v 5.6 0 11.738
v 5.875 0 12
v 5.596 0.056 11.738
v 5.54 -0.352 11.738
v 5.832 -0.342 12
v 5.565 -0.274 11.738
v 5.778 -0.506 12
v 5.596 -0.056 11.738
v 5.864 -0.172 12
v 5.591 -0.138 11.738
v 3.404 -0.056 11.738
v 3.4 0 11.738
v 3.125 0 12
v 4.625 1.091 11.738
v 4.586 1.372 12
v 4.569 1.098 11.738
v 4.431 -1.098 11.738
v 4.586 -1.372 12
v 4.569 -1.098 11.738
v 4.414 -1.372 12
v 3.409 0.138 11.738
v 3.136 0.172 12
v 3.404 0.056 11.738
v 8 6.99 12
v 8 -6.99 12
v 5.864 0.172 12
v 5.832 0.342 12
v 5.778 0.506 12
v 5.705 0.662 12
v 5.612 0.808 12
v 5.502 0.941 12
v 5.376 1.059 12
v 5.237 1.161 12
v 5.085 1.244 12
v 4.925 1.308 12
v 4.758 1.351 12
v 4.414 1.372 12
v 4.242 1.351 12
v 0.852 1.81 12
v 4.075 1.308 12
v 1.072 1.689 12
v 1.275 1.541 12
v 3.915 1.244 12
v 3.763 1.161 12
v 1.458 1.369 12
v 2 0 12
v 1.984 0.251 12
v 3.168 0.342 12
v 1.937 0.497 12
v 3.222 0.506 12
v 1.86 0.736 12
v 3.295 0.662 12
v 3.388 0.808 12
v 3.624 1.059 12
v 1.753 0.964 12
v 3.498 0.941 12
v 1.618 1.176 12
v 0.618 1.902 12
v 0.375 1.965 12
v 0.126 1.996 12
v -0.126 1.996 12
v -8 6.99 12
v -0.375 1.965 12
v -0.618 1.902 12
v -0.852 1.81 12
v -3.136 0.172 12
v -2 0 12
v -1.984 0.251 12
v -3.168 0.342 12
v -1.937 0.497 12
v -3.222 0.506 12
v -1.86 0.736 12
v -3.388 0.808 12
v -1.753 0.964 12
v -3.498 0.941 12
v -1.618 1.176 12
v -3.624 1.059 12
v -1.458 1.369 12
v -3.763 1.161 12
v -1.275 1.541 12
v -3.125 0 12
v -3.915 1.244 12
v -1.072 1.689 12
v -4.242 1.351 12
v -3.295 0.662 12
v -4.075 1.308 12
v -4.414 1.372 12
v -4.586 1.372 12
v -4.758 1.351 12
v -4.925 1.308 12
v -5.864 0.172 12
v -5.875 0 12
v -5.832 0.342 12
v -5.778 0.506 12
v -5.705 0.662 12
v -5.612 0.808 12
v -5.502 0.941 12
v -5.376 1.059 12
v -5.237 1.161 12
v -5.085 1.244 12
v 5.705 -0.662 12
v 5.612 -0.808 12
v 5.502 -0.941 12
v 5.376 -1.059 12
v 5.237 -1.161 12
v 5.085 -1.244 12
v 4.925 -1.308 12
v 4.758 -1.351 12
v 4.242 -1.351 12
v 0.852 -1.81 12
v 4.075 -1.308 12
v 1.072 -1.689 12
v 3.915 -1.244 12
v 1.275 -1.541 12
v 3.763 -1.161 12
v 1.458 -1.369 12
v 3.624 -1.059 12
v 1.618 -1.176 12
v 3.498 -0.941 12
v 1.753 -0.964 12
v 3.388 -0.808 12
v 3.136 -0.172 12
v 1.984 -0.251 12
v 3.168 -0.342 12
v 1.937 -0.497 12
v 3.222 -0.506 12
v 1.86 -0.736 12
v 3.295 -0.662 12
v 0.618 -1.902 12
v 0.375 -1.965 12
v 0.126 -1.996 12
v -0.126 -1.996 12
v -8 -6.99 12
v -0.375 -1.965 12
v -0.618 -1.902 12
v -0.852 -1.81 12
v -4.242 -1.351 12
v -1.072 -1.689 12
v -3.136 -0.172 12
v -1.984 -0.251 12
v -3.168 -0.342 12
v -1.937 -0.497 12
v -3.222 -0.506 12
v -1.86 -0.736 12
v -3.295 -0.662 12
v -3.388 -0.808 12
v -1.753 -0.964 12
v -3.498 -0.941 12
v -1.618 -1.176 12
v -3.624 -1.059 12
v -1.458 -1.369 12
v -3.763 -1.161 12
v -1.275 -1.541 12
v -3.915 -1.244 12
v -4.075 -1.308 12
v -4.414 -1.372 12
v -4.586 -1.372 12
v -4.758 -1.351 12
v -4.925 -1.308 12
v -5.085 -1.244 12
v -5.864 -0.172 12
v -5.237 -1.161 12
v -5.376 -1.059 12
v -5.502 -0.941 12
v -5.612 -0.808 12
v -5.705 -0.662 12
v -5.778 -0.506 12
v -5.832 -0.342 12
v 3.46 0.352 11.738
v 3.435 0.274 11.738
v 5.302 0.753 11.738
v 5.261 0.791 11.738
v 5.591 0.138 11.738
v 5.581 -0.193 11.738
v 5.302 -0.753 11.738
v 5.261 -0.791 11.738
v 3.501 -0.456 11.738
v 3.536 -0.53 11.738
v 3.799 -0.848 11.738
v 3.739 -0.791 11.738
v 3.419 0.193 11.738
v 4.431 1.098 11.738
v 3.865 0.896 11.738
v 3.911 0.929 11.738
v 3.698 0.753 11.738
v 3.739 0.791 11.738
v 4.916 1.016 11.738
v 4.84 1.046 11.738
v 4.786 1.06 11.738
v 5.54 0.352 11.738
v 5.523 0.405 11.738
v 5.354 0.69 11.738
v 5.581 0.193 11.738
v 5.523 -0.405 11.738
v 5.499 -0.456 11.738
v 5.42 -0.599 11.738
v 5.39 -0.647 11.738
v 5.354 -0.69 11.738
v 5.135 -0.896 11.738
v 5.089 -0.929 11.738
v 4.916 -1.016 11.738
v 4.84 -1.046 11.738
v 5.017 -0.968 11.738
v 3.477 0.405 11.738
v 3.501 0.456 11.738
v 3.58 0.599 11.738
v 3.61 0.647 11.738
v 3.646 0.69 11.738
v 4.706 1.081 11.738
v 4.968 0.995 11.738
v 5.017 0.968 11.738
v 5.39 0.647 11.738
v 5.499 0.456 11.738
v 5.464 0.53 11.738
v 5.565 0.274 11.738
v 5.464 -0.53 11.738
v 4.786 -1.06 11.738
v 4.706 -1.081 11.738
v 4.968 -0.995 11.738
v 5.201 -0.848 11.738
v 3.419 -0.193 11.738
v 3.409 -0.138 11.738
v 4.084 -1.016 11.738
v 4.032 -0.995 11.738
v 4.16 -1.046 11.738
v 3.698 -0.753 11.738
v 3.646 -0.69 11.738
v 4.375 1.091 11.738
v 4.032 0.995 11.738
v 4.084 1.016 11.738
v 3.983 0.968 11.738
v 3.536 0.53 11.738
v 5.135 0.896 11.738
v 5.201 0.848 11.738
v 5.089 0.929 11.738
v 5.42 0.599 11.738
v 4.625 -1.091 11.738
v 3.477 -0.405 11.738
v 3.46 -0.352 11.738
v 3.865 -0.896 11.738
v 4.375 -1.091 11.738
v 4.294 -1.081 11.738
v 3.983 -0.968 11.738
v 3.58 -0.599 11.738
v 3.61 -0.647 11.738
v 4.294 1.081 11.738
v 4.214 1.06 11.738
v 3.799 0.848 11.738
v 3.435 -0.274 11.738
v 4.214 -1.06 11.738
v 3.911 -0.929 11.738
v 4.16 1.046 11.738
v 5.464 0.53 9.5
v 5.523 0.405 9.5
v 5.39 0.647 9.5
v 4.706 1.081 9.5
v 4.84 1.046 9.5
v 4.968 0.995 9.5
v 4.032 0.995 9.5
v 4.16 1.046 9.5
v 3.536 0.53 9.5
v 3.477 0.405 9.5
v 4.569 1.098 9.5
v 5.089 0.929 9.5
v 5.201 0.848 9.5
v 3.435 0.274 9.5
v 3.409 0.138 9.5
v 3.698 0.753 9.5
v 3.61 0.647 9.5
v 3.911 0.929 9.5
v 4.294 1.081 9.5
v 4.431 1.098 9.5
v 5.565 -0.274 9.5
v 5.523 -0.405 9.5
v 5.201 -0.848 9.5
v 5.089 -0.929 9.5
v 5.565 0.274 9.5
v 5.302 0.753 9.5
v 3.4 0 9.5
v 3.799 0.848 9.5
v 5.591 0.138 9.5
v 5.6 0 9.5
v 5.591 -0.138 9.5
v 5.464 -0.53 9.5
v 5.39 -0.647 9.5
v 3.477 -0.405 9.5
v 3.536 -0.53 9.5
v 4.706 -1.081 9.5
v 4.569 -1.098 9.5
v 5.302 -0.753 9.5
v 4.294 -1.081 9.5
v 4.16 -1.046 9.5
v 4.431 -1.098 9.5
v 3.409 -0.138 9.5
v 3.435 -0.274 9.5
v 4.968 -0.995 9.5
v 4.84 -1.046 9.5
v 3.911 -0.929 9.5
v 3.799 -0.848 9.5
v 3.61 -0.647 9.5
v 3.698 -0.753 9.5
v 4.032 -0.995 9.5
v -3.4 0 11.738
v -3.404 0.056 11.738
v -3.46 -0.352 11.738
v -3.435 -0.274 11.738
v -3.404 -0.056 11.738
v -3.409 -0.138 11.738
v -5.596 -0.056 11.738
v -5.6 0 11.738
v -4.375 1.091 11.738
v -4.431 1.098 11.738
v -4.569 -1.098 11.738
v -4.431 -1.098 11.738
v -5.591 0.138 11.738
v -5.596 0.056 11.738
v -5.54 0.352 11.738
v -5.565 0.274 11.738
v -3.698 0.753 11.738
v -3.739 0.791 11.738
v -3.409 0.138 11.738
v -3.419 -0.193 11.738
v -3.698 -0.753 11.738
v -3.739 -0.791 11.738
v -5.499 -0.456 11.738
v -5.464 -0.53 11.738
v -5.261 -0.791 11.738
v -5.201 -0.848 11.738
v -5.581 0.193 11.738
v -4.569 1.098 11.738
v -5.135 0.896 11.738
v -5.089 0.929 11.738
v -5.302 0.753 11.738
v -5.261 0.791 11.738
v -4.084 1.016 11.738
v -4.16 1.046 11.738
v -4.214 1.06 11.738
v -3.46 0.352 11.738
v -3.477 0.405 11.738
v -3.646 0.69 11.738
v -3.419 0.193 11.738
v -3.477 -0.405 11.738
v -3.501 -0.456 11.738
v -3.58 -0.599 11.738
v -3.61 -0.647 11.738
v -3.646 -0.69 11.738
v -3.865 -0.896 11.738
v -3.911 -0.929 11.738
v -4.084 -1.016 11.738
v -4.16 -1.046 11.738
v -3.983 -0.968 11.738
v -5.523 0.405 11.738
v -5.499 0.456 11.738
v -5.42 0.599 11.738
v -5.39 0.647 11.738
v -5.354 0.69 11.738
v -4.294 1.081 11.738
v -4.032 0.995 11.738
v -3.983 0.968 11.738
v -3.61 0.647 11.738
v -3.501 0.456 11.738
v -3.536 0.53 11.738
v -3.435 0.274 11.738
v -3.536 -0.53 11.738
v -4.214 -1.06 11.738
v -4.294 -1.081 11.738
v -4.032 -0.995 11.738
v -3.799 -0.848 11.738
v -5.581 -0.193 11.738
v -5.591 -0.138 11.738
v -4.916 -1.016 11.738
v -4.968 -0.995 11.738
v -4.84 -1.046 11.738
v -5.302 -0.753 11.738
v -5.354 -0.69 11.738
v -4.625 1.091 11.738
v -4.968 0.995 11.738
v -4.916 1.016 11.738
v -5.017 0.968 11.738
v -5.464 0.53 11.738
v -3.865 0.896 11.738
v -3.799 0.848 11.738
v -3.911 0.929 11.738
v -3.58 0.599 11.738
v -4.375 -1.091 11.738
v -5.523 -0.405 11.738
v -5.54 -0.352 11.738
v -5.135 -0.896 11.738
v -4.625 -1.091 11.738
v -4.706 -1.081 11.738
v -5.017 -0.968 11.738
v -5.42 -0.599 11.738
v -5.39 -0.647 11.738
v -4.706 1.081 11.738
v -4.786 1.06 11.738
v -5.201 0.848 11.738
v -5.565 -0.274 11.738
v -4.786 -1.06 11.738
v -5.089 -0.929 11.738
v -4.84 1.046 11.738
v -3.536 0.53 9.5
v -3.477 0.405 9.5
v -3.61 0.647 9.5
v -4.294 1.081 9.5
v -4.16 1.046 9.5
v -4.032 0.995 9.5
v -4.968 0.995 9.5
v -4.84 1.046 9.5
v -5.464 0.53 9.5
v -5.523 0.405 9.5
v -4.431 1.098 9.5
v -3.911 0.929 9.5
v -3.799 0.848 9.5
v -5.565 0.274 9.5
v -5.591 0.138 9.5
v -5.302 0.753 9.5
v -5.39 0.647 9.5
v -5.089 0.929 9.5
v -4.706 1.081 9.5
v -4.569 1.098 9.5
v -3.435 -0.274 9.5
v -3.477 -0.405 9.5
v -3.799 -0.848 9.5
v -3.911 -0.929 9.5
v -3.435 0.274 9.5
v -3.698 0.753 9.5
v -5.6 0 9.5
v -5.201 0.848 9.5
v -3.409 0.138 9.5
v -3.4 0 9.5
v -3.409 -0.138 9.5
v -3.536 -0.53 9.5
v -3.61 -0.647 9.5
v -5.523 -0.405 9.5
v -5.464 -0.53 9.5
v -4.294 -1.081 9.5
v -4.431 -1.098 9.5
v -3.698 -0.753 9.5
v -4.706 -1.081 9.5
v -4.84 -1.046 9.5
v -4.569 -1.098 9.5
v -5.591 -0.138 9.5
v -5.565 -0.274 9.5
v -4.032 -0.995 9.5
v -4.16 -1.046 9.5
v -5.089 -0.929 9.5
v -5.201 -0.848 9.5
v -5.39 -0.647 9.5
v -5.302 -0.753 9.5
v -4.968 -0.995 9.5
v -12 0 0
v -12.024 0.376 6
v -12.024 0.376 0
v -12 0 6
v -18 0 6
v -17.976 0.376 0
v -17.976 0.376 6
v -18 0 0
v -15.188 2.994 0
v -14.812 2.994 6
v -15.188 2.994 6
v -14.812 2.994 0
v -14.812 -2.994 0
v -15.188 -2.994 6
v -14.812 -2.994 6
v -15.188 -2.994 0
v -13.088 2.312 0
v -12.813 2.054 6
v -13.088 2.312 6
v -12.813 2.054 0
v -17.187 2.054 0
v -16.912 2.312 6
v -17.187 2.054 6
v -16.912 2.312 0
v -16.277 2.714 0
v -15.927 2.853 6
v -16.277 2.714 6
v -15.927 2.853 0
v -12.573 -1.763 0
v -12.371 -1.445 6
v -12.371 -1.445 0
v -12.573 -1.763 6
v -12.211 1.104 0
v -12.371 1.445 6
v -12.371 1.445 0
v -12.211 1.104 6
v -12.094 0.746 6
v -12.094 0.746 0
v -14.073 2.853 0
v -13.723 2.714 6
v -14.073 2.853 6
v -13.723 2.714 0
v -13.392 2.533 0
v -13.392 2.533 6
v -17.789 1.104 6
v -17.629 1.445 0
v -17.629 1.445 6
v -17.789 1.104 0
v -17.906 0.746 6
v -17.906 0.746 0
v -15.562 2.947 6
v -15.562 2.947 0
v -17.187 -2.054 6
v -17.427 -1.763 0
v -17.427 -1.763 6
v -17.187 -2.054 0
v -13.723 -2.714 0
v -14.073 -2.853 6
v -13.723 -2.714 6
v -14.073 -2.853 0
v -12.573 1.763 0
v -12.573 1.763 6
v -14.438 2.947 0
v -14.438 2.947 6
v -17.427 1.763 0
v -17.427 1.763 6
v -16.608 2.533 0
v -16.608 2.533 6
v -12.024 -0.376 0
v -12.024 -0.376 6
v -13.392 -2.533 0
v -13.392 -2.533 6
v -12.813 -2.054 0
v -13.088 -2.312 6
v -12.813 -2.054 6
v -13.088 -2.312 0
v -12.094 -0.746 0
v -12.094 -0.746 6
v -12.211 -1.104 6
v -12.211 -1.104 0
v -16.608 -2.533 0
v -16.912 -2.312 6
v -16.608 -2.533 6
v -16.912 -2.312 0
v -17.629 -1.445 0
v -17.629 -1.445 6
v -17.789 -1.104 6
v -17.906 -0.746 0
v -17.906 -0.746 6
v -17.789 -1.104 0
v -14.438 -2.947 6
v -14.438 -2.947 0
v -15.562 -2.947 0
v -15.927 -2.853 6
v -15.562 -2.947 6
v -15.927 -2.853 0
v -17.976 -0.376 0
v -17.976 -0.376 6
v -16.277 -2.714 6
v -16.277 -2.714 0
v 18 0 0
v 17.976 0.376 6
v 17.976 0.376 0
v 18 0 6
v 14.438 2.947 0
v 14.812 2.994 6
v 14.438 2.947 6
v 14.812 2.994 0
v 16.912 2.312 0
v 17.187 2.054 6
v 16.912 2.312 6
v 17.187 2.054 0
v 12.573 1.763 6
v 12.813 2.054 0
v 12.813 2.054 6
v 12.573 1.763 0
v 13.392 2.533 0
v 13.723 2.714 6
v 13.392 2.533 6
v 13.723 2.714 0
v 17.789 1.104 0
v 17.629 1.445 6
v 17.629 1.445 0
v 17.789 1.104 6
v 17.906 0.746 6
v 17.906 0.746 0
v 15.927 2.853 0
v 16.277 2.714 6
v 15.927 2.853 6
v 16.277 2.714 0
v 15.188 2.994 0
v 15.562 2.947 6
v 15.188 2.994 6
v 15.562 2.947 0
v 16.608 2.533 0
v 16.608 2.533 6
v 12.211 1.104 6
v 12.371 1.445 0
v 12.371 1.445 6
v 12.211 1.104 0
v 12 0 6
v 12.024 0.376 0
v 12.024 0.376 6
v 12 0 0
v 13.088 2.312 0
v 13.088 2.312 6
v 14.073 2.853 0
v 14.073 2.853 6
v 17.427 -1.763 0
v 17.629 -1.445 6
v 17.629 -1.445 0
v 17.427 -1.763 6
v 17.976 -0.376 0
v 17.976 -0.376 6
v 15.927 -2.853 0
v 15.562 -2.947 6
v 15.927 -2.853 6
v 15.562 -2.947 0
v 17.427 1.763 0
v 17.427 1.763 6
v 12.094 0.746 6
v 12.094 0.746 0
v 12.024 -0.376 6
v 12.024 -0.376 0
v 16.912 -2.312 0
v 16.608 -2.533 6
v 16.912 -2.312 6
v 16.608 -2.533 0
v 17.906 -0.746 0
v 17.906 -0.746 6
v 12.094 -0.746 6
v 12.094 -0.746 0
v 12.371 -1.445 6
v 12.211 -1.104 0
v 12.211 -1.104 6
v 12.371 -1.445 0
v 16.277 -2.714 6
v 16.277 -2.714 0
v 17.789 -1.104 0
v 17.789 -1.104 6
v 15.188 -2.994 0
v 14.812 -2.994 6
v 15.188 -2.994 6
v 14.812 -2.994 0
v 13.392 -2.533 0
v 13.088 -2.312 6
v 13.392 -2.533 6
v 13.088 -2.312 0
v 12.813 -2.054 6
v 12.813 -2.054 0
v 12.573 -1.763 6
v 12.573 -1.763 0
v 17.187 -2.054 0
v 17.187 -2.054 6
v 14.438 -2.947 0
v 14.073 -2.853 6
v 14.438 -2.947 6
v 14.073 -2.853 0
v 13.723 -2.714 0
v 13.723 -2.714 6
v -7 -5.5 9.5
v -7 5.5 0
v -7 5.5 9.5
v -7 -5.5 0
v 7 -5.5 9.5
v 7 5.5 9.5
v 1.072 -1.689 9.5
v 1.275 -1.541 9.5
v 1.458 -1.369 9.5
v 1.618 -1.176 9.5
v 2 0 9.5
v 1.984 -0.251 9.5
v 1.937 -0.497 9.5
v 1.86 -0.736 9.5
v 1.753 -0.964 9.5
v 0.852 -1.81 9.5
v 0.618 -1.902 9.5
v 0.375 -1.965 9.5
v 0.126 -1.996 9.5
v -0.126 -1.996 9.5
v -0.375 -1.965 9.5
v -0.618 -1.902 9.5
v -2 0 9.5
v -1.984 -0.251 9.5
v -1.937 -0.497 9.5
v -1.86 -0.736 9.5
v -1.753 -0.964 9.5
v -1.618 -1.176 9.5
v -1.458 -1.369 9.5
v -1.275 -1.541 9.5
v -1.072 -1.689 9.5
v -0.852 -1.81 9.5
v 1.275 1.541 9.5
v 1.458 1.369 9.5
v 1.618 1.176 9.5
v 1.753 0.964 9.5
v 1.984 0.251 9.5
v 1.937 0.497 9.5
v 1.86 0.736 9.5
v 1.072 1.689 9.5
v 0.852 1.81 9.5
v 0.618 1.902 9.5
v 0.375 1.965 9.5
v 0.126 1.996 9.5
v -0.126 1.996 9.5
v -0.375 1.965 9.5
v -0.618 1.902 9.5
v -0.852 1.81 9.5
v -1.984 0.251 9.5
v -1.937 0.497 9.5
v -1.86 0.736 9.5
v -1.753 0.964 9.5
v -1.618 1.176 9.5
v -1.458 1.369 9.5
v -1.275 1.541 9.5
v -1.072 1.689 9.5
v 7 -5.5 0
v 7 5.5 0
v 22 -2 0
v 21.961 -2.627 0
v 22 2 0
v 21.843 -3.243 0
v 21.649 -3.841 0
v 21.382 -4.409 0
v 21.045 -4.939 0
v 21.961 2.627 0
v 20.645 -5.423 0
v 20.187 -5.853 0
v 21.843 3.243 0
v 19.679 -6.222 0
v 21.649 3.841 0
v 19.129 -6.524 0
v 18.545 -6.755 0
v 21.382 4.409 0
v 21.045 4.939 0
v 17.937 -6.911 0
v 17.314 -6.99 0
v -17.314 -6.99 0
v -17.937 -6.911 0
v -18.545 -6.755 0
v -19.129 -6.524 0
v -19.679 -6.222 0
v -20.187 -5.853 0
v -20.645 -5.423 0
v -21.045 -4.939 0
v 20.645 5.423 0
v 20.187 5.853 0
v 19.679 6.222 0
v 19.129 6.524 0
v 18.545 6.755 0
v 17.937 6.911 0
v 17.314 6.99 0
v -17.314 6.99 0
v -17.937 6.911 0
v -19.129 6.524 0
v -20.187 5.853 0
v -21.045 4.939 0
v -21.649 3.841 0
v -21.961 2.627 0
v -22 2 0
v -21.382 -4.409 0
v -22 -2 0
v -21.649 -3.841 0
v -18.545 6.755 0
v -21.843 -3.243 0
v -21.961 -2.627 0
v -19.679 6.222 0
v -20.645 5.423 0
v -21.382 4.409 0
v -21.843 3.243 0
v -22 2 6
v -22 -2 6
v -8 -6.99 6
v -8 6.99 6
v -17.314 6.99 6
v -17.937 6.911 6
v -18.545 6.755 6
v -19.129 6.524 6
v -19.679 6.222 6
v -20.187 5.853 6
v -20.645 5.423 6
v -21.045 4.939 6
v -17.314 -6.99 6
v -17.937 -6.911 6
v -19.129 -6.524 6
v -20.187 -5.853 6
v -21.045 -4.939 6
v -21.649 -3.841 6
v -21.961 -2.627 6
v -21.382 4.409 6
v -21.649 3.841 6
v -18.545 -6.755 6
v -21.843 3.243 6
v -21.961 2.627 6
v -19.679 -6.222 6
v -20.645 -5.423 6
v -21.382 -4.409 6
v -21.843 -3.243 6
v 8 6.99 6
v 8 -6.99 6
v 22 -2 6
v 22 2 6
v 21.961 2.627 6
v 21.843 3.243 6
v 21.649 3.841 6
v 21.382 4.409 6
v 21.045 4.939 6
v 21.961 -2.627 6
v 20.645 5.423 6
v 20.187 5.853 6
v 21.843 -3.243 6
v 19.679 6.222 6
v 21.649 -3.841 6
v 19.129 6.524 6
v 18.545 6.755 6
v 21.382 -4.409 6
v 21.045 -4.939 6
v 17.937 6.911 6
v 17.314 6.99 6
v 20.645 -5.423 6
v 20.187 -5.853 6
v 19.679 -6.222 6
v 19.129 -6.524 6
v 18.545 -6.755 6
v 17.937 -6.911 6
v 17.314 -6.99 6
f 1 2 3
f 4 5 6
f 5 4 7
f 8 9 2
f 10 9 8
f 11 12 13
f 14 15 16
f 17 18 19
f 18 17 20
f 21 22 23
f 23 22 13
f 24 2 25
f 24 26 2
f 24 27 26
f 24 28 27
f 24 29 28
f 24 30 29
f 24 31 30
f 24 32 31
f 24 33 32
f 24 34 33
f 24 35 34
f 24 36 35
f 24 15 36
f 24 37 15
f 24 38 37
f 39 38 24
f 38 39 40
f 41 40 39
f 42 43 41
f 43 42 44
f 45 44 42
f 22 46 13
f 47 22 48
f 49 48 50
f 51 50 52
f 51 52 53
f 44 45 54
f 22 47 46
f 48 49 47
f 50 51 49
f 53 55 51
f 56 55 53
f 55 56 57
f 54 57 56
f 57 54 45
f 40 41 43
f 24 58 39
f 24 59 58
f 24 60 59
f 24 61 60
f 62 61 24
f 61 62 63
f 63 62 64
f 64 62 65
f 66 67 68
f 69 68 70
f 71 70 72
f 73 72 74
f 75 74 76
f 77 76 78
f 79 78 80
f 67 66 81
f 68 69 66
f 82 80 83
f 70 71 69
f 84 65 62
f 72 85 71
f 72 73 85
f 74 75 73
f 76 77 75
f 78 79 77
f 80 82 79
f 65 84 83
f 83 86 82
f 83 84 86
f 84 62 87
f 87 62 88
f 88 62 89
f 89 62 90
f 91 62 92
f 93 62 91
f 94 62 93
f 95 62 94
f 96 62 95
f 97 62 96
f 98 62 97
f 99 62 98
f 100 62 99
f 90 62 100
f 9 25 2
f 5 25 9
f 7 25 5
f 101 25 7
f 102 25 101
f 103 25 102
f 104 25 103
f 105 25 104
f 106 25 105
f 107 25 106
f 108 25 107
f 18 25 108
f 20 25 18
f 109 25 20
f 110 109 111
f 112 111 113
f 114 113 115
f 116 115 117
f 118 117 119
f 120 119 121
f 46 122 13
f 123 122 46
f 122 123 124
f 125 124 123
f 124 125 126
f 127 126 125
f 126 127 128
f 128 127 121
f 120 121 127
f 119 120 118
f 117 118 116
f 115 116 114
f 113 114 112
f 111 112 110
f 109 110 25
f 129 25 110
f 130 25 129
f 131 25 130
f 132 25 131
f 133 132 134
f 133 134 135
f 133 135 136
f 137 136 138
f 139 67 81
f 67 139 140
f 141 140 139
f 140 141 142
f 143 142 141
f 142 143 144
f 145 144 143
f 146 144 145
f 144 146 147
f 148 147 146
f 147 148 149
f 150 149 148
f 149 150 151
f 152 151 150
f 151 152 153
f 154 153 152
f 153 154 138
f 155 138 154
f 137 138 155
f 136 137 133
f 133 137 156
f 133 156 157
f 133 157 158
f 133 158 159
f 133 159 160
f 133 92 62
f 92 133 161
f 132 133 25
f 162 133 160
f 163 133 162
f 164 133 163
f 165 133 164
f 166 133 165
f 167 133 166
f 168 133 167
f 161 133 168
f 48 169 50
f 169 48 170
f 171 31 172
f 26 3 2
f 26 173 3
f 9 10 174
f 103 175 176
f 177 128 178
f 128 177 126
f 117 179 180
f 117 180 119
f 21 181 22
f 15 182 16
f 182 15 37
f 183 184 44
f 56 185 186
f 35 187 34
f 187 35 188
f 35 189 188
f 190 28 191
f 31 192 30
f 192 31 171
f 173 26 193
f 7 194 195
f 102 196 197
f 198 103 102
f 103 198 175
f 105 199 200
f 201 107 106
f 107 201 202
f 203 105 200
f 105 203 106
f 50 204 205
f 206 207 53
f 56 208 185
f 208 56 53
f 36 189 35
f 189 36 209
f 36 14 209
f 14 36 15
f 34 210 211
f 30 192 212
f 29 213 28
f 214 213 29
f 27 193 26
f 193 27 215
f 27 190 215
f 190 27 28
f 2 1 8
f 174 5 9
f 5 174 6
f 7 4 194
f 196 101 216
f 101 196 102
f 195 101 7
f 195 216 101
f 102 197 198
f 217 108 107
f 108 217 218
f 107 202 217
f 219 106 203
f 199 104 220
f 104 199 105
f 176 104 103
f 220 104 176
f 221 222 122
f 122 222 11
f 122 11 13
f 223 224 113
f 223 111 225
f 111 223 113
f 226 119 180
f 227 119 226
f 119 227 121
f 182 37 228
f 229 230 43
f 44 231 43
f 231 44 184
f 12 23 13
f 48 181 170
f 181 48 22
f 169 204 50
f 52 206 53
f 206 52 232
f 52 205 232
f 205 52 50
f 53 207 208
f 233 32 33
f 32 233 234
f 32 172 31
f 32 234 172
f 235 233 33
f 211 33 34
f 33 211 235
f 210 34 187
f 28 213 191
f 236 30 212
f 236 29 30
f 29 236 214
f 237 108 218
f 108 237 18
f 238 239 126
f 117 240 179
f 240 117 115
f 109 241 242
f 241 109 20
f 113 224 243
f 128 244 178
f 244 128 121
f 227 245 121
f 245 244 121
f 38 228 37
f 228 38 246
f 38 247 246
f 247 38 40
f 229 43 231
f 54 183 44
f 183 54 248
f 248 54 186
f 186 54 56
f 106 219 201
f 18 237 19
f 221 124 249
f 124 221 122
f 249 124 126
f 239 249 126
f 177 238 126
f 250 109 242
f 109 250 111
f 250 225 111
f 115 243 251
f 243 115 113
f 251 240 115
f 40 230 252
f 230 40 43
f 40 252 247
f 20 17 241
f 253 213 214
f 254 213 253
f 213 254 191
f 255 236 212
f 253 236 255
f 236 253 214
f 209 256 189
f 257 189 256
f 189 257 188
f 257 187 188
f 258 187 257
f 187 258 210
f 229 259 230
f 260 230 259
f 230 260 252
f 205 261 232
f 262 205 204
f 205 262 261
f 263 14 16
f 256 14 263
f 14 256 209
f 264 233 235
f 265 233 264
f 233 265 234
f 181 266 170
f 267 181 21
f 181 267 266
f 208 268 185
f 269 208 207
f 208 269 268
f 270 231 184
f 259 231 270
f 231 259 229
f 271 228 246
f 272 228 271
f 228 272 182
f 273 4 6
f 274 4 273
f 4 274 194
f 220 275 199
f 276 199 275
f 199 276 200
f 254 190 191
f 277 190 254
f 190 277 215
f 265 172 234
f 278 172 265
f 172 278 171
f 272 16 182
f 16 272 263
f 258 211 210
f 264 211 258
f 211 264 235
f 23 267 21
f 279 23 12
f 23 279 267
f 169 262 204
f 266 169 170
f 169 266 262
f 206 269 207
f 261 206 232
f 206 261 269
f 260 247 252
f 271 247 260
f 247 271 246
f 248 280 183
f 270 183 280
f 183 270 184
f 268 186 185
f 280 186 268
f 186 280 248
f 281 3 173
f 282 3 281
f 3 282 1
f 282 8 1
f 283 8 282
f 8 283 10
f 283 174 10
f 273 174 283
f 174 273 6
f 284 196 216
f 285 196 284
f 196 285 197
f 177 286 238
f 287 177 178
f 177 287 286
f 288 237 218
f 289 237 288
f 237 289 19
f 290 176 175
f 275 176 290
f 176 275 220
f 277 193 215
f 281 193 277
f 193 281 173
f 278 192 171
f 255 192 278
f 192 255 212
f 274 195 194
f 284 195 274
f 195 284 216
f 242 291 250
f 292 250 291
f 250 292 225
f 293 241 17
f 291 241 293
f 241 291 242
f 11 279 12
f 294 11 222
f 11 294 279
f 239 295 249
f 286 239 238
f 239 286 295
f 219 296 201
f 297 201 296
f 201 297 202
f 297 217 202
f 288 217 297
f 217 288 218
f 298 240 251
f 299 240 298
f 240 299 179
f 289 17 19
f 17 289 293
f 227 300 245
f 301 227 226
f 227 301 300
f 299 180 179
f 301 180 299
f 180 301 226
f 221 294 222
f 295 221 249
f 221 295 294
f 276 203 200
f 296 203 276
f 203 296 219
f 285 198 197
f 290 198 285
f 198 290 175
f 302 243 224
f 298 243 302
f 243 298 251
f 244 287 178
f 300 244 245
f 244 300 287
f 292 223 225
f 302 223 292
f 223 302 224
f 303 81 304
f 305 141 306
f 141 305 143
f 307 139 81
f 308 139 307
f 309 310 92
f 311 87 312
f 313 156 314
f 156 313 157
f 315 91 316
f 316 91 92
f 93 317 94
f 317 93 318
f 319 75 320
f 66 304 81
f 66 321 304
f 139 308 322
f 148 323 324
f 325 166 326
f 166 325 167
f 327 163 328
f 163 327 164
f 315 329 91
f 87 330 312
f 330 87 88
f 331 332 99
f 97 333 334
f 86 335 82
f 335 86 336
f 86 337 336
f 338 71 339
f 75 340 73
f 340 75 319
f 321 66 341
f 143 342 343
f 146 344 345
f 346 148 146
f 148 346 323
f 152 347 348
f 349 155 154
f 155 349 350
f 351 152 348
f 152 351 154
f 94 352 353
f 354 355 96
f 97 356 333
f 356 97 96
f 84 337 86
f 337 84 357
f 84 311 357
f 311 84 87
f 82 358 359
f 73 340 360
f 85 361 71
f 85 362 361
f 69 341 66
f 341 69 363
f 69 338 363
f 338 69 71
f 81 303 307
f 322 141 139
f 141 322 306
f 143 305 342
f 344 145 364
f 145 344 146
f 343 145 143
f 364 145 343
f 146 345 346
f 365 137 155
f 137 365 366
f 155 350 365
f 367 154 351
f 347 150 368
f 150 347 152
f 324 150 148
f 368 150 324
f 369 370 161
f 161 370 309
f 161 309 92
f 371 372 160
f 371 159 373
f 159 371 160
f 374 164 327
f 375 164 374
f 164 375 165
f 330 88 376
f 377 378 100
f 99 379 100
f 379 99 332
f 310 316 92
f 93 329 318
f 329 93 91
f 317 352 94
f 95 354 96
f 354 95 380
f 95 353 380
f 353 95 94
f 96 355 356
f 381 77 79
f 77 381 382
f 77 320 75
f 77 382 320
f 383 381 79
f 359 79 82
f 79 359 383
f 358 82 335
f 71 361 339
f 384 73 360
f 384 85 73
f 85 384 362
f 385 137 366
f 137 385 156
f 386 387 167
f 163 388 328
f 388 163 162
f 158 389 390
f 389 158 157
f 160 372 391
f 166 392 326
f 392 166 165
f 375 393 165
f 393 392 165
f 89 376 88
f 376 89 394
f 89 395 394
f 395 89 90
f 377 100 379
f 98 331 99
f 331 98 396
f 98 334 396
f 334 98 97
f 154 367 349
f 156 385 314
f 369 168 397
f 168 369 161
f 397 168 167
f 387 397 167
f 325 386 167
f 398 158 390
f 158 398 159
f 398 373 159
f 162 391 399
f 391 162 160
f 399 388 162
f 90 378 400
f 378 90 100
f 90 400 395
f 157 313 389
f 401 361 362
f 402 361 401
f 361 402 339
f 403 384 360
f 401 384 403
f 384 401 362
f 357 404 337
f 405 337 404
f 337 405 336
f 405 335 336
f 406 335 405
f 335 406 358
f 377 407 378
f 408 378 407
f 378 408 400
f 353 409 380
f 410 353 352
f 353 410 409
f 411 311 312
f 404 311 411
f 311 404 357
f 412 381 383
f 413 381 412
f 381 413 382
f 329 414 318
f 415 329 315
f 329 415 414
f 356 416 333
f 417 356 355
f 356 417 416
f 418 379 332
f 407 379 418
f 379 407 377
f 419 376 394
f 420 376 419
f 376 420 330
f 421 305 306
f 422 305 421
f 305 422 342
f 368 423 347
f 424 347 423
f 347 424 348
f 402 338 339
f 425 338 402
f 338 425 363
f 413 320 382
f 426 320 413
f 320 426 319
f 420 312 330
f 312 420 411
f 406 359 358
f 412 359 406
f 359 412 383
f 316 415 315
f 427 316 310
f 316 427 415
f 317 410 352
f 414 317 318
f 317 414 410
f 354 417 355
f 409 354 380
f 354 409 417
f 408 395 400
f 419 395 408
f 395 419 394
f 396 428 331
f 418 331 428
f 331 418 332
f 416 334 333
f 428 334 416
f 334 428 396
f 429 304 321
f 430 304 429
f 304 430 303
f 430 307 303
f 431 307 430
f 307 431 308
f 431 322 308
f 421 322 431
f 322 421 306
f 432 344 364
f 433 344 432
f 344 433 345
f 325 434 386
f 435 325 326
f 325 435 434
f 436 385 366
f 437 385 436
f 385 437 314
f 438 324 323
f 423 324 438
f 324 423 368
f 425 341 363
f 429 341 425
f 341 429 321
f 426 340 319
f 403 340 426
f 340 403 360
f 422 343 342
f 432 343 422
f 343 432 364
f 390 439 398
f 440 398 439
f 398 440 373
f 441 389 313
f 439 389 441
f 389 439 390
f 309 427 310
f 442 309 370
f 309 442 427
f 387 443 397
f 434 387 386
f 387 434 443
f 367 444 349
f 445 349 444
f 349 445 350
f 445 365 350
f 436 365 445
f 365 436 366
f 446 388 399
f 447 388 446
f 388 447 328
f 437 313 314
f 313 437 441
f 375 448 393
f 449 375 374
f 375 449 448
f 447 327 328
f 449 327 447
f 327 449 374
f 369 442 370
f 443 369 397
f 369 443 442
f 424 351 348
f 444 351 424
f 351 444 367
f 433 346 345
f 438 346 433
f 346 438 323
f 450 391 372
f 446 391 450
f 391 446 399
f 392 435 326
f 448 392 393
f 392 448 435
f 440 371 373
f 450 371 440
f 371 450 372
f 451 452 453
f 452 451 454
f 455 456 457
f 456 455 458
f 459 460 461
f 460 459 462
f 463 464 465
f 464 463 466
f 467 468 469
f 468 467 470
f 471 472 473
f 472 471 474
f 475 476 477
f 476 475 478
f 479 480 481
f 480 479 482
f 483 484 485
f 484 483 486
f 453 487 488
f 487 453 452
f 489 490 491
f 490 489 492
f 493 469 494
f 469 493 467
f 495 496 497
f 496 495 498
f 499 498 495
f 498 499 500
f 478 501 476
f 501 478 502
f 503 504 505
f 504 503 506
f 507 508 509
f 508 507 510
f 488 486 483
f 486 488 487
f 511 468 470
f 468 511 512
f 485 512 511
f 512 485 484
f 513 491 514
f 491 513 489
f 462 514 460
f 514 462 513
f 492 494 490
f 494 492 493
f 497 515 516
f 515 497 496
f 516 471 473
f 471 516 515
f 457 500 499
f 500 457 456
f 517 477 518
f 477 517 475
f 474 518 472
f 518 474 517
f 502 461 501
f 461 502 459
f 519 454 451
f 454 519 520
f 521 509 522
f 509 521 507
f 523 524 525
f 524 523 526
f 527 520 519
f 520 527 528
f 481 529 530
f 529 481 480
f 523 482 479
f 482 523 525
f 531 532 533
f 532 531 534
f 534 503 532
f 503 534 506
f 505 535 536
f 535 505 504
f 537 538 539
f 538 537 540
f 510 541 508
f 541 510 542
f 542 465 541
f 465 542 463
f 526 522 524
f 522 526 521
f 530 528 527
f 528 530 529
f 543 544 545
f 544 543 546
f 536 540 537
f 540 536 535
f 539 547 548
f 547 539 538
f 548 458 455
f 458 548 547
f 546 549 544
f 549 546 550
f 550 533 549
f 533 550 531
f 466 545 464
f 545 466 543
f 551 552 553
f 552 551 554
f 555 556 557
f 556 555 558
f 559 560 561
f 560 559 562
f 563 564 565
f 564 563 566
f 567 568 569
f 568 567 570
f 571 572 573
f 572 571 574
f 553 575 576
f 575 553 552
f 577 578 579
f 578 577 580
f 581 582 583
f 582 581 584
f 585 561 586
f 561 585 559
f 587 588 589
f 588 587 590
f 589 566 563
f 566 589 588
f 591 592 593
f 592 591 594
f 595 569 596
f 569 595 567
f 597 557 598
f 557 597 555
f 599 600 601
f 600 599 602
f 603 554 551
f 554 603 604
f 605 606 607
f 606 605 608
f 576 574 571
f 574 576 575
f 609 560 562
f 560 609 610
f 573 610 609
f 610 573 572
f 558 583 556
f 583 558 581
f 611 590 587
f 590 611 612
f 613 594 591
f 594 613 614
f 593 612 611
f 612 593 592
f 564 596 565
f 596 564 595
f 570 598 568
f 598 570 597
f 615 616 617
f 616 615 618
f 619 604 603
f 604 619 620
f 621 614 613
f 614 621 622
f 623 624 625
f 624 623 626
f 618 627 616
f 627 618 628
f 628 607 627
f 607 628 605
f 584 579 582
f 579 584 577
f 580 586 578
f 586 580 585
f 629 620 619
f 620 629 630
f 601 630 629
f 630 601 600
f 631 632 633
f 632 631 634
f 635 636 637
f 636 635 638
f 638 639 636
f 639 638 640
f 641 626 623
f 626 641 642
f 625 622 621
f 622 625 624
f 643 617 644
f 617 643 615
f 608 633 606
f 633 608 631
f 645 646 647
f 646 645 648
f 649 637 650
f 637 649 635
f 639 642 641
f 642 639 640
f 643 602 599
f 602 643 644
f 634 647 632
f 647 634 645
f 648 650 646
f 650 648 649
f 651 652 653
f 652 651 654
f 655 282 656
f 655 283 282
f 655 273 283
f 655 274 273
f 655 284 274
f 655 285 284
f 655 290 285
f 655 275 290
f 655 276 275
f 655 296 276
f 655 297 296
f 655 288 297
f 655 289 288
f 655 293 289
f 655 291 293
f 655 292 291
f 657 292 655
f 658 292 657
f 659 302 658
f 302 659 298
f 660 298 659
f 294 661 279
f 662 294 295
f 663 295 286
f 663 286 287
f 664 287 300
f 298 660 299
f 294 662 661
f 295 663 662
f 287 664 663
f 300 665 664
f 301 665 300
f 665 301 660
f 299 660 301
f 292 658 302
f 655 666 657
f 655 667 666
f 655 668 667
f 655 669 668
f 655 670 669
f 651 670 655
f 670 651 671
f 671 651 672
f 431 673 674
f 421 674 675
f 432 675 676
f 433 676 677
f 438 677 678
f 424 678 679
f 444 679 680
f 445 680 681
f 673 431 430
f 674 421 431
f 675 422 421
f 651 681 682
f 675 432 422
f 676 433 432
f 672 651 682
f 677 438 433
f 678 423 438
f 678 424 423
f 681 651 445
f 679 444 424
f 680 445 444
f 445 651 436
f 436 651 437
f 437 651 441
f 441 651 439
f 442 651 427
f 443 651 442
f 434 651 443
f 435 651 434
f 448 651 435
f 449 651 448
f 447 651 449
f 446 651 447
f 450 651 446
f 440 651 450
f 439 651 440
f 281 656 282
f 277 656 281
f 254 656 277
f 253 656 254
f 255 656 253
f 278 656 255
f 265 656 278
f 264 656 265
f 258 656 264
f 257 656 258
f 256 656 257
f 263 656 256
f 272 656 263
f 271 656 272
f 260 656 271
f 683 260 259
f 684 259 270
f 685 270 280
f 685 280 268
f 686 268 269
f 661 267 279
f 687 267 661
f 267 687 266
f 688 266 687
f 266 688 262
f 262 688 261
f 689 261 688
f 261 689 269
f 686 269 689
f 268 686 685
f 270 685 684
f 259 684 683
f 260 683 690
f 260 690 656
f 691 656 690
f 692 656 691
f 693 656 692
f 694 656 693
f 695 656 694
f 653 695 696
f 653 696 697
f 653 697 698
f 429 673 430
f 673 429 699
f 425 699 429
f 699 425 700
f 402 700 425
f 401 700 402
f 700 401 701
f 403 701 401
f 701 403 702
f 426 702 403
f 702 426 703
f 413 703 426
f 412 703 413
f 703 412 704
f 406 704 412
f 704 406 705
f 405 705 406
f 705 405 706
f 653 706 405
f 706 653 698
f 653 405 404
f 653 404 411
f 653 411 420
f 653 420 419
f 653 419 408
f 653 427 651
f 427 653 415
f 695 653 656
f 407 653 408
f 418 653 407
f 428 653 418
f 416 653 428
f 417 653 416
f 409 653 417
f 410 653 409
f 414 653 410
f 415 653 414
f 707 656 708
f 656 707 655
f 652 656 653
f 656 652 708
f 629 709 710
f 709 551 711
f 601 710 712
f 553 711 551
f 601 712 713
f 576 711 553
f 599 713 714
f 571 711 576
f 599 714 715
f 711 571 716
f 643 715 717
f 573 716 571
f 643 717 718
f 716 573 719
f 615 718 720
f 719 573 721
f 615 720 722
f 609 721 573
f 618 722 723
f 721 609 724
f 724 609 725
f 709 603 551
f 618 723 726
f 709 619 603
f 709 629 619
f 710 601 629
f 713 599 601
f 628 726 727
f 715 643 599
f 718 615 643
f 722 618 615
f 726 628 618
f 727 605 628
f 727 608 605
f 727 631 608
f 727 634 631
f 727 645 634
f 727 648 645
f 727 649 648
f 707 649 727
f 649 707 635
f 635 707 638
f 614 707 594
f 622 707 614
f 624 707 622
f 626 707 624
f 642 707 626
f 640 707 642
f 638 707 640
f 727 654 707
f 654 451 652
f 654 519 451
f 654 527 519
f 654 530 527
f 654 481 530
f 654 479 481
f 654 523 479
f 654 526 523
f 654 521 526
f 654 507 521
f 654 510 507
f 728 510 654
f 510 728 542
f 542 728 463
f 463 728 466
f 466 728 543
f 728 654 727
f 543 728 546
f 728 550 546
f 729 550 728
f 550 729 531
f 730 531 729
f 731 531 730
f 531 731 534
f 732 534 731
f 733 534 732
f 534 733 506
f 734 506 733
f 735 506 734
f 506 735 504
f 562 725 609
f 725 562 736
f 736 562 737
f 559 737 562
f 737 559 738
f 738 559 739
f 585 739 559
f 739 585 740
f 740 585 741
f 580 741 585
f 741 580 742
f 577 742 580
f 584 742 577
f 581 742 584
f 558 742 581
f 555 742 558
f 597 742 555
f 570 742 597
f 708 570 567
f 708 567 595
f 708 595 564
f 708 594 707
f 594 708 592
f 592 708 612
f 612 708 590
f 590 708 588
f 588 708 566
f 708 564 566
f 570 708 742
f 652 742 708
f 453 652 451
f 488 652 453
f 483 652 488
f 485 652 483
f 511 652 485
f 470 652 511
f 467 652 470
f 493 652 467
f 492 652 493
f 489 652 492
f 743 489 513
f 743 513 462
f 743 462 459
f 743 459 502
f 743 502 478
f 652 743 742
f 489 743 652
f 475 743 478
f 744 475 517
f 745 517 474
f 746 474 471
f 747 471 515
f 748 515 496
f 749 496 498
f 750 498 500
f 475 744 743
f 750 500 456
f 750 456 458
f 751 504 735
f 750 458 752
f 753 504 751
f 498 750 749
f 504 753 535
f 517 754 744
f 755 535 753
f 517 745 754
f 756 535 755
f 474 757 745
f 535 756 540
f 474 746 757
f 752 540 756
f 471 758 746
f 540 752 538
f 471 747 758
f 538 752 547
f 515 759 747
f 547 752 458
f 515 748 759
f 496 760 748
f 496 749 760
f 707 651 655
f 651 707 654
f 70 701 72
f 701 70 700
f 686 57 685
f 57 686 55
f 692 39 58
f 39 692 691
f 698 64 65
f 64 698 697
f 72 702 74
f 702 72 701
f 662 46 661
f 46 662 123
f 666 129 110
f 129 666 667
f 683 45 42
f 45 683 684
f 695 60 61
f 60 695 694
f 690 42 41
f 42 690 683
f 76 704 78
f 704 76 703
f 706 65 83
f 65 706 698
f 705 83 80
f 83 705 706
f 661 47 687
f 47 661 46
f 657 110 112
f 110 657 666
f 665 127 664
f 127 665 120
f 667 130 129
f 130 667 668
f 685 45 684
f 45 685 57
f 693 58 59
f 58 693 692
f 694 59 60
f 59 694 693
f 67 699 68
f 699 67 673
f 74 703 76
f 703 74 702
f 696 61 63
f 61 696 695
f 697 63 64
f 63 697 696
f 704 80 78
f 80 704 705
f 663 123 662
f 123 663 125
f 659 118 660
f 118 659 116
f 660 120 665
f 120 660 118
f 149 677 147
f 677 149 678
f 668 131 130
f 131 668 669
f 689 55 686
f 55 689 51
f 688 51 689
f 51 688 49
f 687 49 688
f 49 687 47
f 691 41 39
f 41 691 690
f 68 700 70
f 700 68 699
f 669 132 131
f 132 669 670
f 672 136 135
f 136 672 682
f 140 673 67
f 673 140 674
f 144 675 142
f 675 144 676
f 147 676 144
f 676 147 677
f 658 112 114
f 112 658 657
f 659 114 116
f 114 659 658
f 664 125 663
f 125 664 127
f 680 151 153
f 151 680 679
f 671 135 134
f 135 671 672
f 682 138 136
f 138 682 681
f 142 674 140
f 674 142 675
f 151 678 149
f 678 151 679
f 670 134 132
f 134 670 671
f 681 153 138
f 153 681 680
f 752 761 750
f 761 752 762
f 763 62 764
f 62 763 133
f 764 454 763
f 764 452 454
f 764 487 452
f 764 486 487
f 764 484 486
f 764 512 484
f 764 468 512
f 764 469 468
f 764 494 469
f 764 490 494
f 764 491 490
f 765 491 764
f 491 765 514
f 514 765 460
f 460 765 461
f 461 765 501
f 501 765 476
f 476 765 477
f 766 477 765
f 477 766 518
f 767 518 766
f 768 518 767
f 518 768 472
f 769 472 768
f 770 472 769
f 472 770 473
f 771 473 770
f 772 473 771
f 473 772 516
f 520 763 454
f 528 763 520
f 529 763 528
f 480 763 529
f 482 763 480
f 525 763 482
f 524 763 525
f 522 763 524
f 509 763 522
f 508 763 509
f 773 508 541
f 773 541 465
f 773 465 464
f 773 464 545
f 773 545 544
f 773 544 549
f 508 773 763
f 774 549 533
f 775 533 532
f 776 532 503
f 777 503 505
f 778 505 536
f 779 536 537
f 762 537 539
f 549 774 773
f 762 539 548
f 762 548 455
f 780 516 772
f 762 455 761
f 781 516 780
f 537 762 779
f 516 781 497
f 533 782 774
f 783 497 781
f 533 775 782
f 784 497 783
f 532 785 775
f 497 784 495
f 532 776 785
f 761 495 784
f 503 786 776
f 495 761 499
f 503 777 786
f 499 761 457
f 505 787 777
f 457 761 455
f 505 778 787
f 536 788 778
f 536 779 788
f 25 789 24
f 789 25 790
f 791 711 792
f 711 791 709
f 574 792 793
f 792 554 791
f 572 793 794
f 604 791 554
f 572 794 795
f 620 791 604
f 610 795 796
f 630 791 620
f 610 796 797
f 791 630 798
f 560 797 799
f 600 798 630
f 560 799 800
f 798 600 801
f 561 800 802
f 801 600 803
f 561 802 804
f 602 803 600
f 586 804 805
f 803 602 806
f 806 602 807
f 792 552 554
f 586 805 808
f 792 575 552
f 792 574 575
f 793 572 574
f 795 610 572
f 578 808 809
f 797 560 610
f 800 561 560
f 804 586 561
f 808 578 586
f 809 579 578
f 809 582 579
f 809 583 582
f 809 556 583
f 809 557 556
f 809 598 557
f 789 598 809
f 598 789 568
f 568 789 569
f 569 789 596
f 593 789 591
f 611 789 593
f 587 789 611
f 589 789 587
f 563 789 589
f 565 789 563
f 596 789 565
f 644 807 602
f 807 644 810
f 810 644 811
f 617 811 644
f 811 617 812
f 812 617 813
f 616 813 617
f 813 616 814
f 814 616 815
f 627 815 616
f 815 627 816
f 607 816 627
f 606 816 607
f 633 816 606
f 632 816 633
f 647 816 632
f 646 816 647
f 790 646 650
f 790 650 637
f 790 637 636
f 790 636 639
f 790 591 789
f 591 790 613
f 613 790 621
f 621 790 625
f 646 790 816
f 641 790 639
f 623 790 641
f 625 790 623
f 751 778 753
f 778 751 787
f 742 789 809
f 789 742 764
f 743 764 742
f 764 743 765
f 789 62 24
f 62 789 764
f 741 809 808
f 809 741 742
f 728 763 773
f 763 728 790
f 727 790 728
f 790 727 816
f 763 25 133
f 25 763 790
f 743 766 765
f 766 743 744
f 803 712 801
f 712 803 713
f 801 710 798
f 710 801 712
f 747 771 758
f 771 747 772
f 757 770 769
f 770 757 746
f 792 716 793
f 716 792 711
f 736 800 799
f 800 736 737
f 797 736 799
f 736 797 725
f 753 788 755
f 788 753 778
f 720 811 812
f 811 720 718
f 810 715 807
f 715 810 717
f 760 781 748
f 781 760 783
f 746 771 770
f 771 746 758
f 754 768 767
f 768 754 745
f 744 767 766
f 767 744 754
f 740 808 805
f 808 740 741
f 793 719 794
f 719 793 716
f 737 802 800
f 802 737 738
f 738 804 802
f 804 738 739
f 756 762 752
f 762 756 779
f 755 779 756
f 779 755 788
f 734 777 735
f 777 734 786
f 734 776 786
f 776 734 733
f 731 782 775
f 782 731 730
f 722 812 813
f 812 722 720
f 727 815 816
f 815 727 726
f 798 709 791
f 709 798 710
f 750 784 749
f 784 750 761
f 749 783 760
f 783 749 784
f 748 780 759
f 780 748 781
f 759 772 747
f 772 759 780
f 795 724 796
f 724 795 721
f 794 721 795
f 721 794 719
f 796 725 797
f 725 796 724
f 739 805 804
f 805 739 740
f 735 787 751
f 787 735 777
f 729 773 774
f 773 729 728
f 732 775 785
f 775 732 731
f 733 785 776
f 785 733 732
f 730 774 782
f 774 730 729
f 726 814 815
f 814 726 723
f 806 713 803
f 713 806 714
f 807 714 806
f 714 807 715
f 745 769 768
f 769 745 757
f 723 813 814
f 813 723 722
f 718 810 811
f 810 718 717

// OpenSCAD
$fn = 50;


difference() {
	union() {
		hull() {
			translate(v = [-17.0000000000, 2.0000000000, 0]) {
				cylinder(h = 12, r = 5);
			}
			translate(v = [17.0000000000, 2.0000000000, 0]) {
				cylinder(h = 12, r = 5);
			}
			translate(v = [-17.0000000000, -2.0000000000, 0]) {
				cylinder(h = 12, r = 5);
			}
			translate(v = [17.0000000000, -2.0000000000, 0]) {
				cylinder(h = 12, r = 5);
			}
		}
	}
	union() {
		translate(v = [4.5000000000, 0, 12]) {
			rotate(a = [0, 0, 0]) {
				difference() {
					union() {
						translate(v = [0, 0, -0.5000000000]) {
							cylinder(h = 0.5000000000, r1 = 0.8500000000, r2 = 1.3750000000);
						}
						translate(v = [0, 0, -4.0000000000]) {
							cylinder(h = 4, r = 0.8500000000);
						}
						translate(v = [0, 0, -4.0000000000]) {
							cylinder(h = 4, r = 1.1000000000);
						}
						translate(v = [0, 0, -4.0000000000]) {
							cylinder(h = 4, r = 0.8500000000);
						}
					}
					union();
				}
			}
		}
		translate(v = [-4.5000000000, 0, 12]) {
			rotate(a = [0, 0, 0]) {
				difference() {
					union() {
						translate(v = [0, 0, -0.5000000000]) {
							cylinder(h = 0.5000000000, r1 = 0.8500000000, r2 = 1.3750000000);
						}
						translate(v = [0, 0, -4.0000000000]) {
							cylinder(h = 4, r = 0.8500000000);
						}
						translate(v = [0, 0, -4.0000000000]) {
							cylinder(h = 4, r = 1.1000000000);
						}
						translate(v = [0, 0, -4.0000000000]) {
							cylinder(h = 4, r = 0.8500000000);
						}
					}
					union();
				}
			}
		}
		translate(v = [-15.0000000000, 0.0000000000, -100.0000000000]) {
			cylinder(h = 200, r = 3.0000000000);
		}
		translate(v = [15.0000000000, 0.0000000000, -100.0000000000]) {
			cylinder(h = 200, r = 3.0000000000);
		}
		translate(v = [15.0000000000, 0.0000000000, -100.0000000000]) {
			cylinder(h = 200, r = 3.0000000000);
		}
		translate(v = [-15.0000000000, 0.0000000000, -100.0000000000]) {
			cylinder(h = 200, r = 1.5000000000);
		}
		translate(v = [15.0000000000, 0.0000000000, -100.0000000000]) {
			cylinder(h = 200, r = 1.5000000000);
		}
		translate(v = [-15.0000000000, 0.0000000000, -100.0000000000]) {
			cylinder(h = 200, r = 1.5000000000);
		}
		translate(v = [15.0000000000, 0.0000000000, -100.0000000000]) {
			cylinder(h = 200, r = 1.5000000000);
		}
		translate(v = [-15.0000000000, 0.0000000000, -100.0000000000]) {
			cylinder(h = 200, r = 1.5000000000);
		}
		translate(v = [15.0000000000, 0.0000000000, -100.0000000000]) {
			cylinder(h = 200, r = 1.5000000000);
		}
		translate(v = [-7.0000000000, -5.5000000000, 0]) {
			cube(size = [14, 11, 9.5000000000]);
		}
		cylinder(h = 12, r = 2.0000000000);
		translate(v = [-22.0000000000, -7.0000000000, 6]) {
			cube(size = [14, 14, 6]);
		}
		translate(v = [8.0000000000, -7.0000000000, 6]) {
			cube(size = [14, 14, 6]);
		}
	}
}
